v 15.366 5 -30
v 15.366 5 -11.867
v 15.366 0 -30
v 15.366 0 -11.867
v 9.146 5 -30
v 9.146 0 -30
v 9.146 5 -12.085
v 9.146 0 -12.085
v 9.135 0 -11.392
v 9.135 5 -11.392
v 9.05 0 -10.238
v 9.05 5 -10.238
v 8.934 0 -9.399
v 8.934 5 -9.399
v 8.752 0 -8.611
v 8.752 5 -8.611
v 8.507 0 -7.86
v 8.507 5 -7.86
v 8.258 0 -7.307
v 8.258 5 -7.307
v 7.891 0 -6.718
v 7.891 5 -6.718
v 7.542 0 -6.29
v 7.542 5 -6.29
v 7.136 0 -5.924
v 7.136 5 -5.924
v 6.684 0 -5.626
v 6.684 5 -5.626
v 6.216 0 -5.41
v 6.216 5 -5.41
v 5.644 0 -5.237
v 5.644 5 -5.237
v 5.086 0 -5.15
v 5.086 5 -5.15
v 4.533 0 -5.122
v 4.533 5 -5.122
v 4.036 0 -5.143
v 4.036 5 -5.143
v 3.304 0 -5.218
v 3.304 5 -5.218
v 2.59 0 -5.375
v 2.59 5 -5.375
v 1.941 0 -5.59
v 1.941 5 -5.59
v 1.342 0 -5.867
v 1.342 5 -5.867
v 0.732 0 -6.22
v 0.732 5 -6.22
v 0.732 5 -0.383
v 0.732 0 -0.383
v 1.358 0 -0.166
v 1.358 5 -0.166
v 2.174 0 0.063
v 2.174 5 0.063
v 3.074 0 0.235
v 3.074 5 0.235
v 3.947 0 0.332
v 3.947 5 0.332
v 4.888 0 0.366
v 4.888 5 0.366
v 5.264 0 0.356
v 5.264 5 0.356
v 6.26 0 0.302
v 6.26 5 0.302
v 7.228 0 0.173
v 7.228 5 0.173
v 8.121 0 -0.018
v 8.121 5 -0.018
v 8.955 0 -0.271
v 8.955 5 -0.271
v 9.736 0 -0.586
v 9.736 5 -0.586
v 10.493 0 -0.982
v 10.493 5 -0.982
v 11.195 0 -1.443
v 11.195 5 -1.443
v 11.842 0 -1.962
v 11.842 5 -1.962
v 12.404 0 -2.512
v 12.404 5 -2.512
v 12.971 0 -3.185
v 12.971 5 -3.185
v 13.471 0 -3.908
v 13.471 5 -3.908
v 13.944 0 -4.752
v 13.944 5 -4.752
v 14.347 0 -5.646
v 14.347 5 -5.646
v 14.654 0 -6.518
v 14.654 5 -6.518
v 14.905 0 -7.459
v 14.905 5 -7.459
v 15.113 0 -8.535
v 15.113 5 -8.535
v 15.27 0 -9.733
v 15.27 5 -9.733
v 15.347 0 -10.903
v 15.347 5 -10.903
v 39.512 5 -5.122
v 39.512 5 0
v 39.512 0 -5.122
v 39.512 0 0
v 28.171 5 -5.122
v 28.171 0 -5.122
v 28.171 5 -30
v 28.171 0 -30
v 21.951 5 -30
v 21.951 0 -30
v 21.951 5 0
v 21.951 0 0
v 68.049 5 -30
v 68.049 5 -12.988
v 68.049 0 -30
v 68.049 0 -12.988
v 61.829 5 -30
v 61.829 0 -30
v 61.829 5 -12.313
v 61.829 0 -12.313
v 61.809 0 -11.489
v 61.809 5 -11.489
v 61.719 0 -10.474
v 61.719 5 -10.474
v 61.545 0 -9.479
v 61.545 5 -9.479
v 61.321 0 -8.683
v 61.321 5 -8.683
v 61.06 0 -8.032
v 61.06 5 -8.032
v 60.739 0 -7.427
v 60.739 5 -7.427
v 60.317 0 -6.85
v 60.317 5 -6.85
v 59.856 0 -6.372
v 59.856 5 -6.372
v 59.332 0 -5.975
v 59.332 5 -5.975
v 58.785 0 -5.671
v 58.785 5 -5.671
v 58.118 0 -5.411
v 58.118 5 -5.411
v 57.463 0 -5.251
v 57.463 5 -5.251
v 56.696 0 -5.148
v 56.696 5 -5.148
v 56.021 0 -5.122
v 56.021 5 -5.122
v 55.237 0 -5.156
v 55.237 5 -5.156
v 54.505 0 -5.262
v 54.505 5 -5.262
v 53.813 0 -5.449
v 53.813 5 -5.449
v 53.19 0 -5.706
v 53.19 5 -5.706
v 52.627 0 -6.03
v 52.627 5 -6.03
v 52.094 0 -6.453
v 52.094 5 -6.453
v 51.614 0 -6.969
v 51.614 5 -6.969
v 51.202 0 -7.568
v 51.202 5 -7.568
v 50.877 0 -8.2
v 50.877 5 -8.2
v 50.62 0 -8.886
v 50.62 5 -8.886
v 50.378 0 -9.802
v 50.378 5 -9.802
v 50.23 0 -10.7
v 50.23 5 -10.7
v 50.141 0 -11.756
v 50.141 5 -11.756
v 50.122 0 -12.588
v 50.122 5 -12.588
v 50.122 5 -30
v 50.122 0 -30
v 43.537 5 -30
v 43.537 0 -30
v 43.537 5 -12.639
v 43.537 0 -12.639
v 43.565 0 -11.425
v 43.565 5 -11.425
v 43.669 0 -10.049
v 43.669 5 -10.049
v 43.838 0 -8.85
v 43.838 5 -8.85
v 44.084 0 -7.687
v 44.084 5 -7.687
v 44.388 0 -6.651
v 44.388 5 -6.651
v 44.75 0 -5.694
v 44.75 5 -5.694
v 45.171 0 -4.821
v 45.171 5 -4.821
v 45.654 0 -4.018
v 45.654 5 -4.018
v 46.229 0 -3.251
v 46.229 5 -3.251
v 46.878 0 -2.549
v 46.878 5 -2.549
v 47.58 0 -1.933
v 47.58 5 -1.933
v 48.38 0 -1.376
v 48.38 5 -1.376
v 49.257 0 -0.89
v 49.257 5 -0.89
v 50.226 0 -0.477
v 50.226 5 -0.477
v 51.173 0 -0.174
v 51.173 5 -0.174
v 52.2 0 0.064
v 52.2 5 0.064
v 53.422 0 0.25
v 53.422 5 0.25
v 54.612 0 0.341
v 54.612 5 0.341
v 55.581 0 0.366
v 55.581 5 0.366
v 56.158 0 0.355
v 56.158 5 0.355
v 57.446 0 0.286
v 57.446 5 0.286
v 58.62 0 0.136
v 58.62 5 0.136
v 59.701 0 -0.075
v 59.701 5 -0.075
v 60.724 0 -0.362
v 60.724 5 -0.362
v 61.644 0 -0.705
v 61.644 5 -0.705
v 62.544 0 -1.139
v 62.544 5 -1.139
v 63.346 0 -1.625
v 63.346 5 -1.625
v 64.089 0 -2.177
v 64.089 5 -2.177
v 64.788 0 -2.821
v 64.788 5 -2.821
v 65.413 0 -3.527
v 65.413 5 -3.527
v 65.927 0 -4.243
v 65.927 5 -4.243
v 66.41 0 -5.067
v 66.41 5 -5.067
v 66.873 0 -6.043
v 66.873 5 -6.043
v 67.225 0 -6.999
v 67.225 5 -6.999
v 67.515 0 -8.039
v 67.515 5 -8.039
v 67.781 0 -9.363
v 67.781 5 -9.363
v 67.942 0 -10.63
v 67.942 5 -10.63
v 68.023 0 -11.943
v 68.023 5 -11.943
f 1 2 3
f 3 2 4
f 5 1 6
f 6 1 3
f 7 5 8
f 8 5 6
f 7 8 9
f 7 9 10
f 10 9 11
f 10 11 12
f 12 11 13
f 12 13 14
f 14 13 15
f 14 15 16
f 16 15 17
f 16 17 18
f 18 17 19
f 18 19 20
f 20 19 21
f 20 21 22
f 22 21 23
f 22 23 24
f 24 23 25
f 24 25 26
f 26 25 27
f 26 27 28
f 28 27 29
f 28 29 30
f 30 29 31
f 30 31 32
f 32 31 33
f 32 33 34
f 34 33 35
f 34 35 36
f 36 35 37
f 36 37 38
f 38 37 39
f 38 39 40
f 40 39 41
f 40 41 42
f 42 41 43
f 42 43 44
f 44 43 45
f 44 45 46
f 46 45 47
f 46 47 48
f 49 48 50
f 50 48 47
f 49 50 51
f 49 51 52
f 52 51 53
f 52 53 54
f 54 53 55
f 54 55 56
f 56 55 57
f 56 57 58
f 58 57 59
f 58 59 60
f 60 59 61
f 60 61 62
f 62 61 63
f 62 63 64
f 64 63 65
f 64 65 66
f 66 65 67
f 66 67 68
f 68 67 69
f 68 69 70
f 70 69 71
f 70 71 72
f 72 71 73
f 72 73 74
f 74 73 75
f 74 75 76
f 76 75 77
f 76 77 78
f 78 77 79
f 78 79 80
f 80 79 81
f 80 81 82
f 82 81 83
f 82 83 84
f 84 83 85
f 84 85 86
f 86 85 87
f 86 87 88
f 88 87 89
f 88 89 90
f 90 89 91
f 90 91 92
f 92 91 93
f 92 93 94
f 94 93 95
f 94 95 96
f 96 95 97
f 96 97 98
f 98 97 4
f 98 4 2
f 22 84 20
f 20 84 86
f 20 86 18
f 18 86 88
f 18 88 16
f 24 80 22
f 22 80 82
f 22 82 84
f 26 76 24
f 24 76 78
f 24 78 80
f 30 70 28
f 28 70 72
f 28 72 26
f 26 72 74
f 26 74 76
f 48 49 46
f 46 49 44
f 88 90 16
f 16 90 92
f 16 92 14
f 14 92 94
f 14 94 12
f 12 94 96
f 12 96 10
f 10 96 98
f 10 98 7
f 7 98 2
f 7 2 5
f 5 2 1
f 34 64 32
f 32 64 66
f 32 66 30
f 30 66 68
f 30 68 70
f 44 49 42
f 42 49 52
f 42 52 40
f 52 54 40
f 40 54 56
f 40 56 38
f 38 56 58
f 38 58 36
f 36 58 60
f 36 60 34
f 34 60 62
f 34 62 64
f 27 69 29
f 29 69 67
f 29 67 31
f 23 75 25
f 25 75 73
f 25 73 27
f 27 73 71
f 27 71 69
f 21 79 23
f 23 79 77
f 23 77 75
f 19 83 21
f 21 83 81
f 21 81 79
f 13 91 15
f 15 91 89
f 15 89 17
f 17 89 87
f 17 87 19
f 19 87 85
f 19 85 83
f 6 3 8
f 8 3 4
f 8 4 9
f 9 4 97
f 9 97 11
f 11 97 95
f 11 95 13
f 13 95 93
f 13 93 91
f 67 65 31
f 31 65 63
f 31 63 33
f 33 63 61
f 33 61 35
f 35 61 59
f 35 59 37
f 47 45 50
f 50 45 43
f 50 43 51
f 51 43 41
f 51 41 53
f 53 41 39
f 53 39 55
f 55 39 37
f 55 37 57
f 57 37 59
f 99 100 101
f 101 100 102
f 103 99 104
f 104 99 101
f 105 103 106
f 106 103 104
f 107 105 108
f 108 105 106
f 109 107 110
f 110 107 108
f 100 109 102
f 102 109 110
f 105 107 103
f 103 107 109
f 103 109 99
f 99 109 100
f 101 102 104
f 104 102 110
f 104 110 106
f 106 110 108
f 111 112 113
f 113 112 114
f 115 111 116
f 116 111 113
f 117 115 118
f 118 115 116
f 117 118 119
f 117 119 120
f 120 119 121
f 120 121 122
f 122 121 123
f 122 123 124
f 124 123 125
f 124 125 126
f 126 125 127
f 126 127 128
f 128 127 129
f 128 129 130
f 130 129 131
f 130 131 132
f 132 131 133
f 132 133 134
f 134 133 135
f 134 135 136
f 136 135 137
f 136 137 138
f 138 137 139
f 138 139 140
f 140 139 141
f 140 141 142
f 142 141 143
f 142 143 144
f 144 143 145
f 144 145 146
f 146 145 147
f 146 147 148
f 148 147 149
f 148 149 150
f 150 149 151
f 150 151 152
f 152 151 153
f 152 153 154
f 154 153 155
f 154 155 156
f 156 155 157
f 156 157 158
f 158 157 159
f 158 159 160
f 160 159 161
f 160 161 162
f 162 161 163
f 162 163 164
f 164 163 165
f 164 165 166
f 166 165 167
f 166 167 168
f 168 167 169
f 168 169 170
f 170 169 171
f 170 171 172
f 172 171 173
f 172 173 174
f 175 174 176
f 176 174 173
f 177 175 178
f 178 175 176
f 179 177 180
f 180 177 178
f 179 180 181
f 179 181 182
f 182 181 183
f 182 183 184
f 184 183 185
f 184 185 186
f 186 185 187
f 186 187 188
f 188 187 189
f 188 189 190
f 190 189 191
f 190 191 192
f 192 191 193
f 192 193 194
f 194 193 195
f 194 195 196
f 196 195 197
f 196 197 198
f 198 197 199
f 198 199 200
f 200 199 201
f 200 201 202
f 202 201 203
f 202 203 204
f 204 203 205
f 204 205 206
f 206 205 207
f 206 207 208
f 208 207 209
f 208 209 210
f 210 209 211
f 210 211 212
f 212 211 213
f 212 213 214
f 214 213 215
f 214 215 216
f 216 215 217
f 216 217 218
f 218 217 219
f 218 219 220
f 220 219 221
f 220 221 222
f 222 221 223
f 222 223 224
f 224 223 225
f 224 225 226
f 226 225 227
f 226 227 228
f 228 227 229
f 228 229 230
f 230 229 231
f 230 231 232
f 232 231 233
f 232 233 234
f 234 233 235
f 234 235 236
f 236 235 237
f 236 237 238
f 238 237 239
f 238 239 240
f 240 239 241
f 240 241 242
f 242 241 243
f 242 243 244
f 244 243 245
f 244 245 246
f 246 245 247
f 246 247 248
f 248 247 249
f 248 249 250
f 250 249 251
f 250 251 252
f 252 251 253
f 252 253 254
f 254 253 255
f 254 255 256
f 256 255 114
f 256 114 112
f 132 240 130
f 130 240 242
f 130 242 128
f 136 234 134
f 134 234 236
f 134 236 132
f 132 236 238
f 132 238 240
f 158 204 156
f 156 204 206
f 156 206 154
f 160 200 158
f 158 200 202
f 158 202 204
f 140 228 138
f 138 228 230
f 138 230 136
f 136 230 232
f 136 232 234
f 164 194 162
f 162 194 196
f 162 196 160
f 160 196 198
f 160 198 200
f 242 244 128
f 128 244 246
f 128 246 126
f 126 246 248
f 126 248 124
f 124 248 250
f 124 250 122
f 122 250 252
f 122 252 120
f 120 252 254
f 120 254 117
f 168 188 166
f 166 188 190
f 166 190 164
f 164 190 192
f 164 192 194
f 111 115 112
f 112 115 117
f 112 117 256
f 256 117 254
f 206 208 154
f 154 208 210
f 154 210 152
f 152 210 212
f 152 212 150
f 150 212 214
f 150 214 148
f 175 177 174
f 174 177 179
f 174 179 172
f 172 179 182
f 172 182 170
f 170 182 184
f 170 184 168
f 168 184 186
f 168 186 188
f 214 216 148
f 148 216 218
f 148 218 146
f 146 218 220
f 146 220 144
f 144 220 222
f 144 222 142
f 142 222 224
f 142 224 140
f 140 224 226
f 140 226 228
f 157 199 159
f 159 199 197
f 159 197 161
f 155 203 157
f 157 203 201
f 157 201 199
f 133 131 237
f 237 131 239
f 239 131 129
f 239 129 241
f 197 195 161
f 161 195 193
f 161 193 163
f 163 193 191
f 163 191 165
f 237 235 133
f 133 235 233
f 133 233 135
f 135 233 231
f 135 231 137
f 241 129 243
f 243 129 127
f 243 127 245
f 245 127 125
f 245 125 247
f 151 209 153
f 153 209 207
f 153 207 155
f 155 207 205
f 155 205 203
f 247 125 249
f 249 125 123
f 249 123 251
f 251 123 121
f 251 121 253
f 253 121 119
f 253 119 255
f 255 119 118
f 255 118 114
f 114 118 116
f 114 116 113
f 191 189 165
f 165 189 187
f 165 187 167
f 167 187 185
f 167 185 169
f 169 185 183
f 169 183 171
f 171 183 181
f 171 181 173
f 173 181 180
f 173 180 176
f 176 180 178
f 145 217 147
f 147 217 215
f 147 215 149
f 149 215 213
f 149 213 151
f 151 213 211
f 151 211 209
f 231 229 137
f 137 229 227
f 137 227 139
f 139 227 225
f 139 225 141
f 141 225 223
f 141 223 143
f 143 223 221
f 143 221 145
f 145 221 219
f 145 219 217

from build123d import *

# Parameters (mm, degrees)
EXTRUDE_1_DEPTH   = 5
EXTRUDE_1_2_DEPTH = 5
EXTRUDE_1_3_DEPTH = 5


with BuildPart() as part:
    # 草图1 → 凸台-拉伸1 (new body)
    with BuildSketch(Plane(origin=(0, 0, 0), x_dir=(1, 0, 0), z_dir=(0, 1, 0))):
        with BuildLine():
            add(Edge.make_bspline(
                [(15.365853659, 11.867378049), (15.359714143, 11.388754175), (15.34777692, 10.458153084), (15.211244414, 9.106167205), (15.002706243, 7.839290187), (14.715095668, 6.655120447), (14.332970611, 5.559401607), (13.859925734, 4.55214514), (13.312285096, 3.624848618), (12.674899746, 2.787160052), (11.960247142, 2.039406472), (11.164265164, 1.396545215), (10.298894503, 0.846582857), (9.357721104, 0.401042681), (8.342347892, 0.057481376), (7.255963883, -0.18599665), (6.096083165, -0.337220248), (5.29773224, -0.356135745), (4.88757622, -0.365853659)],
                knots=[0, 0, 0, 0, 1.252787689, 2.435828329, 3.553798052, 4.612612012, 5.622487692, 6.586703885, 7.52193139, 8.436978722, 9.336773741, 10.223513121, 11.109367792, 12.015434675, 12.943166183, 13.910230879, 14.926372652, 16, 16, 16, 16], degree=3))
            add(Edge.make_bspline(
                [(4.88757622, -0.365853659), (4.521195176, -0.357871677), (3.797001275, -0.342094379), (2.733703817, -0.192680967), (1.707538009, 0.035421939), (1.055540327, 0.267656977), (0.731707317, 0.383003049)],
                knots=[0, 0, 0, 0, 1.034892608, 2.045583223, 3.029283868, 4, 4, 4, 4], degree=3))
            Line((0.731707317, 0.383003049), (0.731707317, 6.219512195))
            add(Edge.make_bspline(
                [(0.731707317, 6.219512195), (1.01471884, 6.049920454), (1.579144924, 5.711693933), (2.516379223, 5.372711427), (3.505903389, 5.159406119), (4.187132684, 5.134567645), (4.533155488, 5.12195122)],
                knots=[0, 0, 0, 0, 0.984943231, 1.964328682, 2.966003513, 4, 4, 4, 4], degree=3))
            add(Edge.make_bspline(
                [(4.533155488, 5.12195122), (4.720164972, 5.127610952), (5.082640922, 5.138581075), (5.608957749, 5.218480357), (6.097637405, 5.357107978), (6.554677931, 5.545197073), (6.973457762, 5.79255926), (7.355917566, 6.094351317), (7.702292294, 6.450442897), (8.000845903, 6.868310794), (8.282709642, 7.327912824), (8.513128963, 7.850186322), (8.704351377, 8.42599057), (8.873082335, 9.05091247), (8.997218015, 9.733566303), (9.077296908, 10.471143259), (9.139465773, 11.260397367), (9.144003621, 11.80436062), (9.146341463, 12.084603659)],
                knots=[0, 0, 0, 0, 0.947883774, 1.837260146, 2.69043812, 3.517459016, 4.335860151, 5.147506513, 5.980933728, 6.844547187, 7.745752902, 8.709887714, 9.730166246, 10.819703769, 11.988689429, 13.243189077, 14.579725623, 16, 16, 16, 16], degree=3))
            Line((9.146341463, 12.084603659), (9.146341463, 30))
            Line((9.146341463, 30), (15.365853659, 30))
            Line((15.365853659, 30), (15.365853659, 11.867378049))
        make_face()
    extrude(amount=EXTRUDE_1_DEPTH)


with BuildPart() as body_2:
    # 草图1 → Extrude 1 2 (new body)
    with BuildSketch(Plane(origin=(0, 0, 0), x_dir=(1, 0, 0), z_dir=(0, 1, 0))):
        Polygon((39.512195122, 0), (21.951219512, 0), (21.951219512, 30), (28.170731707, 30), (28.170731707, 5.12195122), (39.512195122, 5.12195122), align=None)
    extrude(amount=EXTRUDE_1_2_DEPTH)


with BuildPart() as body_3:
    # 草图1 → Extrude 1 3 (new body)
    with BuildSketch(Plane(origin=(0, 0, 0), x_dir=(1, 0, 0), z_dir=(0, 1, 0))):
        with BuildLine():
            add(Edge.make_bspline(
                [(68.048780488, 12.987804878), (68.038453214, 12.448258877), (68.018453806, 11.403394542), (67.877460436, 9.885580867), (67.631936034, 8.47367009), (67.299183021, 7.160805712), (66.860134182, 5.95501179), (66.317646786, 4.855544135), (65.691843396, 3.850702018), (64.951792374, 2.959266592), (64.119444781, 2.168446752), (63.181561334, 1.491722462), (62.154063147, 0.90942498), (61.023647309, 0.442961438), (59.800281913, 0.075055544), (58.477930222, -0.174172886), (57.062175851, -0.340907214), (56.084735843, -0.357371508), (55.58117378, -0.365853659)],
                knots=[0, 0, 0, 0, 1.235970273, 2.393533182, 3.487949003, 4.515992742, 5.492359522, 6.421609714, 7.320200712, 8.197688609, 9.068473492, 9.9433408, 10.840509925, 11.7679436, 12.738791264, 13.761818313, 14.84692321, 16, 16, 16, 16], degree=3))
            add(Edge.make_bspline(
                [(55.58117378, -0.365853659), (55.094818522, -0.356720706), (54.150010293, -0.338978761), (52.781336736, -0.180940289), (51.504103167, 0.066133741), (50.321052821, 0.419002075), (49.231269892, 0.877695667), (48.237431368, 1.439664261), (47.333388641, 2.101713518), (46.531492419, 2.874663855), (45.815526399, 3.7429627), (45.203441798, 4.716658114), (44.68587711, 5.790997908), (44.266993374, 6.966763371), (43.933811725, 8.242201159), (43.705872632, 9.619893209), (43.559076455, 11.09627721), (43.544229734, 12.114719118), (43.536585366, 12.63910061)],
                knots=[0, 0, 0, 0, 1.148060148, 2.23025588, 3.248551608, 4.216496896, 5.139925816, 6.034536378, 6.906548873, 7.778503327, 8.657637241, 9.557628747, 10.487339234, 11.467969992, 12.500363046, 13.595861819, 14.762142881, 16, 16, 16, 16], degree=3))
            Line((43.536585366, 12.63910061), (43.536585366, 30))
            Line((43.536585366, 30), (50.12195122, 30))
            Line((50.12195122, 30), (50.12195122, 12.587652439))
            add(Edge.make_bspline(
                [(50.12195122, 12.587652439), (50.125979019, 12.286430181), (50.133790862, 11.702215085), (50.204165603, 10.854791493), (50.312874033, 10.064569644), (50.483130108, 9.334380345), (50.683964475, 8.65928118), (50.935435455, 8.040892169), (51.23902393, 7.486466147), (51.585201874, 6.985710714), (51.979166809, 6.546292366), (52.419303983, 6.161827763), (52.908968052, 5.841337226), (53.443261848, 5.578453606), (54.022088498, 5.370487914), (54.646934899, 5.222850963), (55.3196495, 5.137463485), (55.782906481, 5.127222289), (56.021341463, 5.12195122)],
                knots=[0, 0, 0, 0, 1.329763638, 2.579052408, 3.752249674, 4.848271385, 5.886243203, 6.859634421, 7.789624459, 8.671882452, 9.541777961, 10.388665663, 11.245070424, 12.11801215, 13.012224324, 13.955027817, 14.947467761, 16, 16, 16, 16], degree=3))
            add(Edge.make_bspline(
                [(56.021341463, 5.12195122), (56.256038599, 5.126897845), (56.71184416, 5.136504692), (57.371400342, 5.226125795), (57.990253302, 5.358795866), (58.560541463, 5.560430031), (59.088293744, 5.811859102), (59.566686889, 6.125470048), (60.004975486, 6.489949165), (60.387367979, 6.920893726), (60.735740084, 7.395497154), (61.026463257, 7.936425929), (61.27632455, 8.529899757), (61.483284006, 9.178043168), (61.634276076, 9.883217192), (61.748419073, 10.642886398), (61.816950956, 11.46025809), (61.825084087, 12.023496256), (61.829268293, 12.313262195)],
                knots=[0, 0, 0, 0, 1.06525563, 2.068834107, 3.017760966, 3.934579473, 4.809264905, 5.666133045, 6.525923798, 7.389754923, 8.276006946, 9.193845841, 10.171036594, 11.197302887, 12.278570952, 13.442422199, 14.684217483, 16, 16, 16, 16], degree=3))
            Line((61.829268293, 12.313262195), (61.829268293, 30))
            Line((61.829268293, 30), (68.048780488, 30))
            Line((68.048780488, 30), (68.048780488, 12.987804878))
        make_face()
    extrude(amount=EXTRUDE_1_3_DEPTH)


solid = Compound([part.part, body_2.part, body_3.part])
